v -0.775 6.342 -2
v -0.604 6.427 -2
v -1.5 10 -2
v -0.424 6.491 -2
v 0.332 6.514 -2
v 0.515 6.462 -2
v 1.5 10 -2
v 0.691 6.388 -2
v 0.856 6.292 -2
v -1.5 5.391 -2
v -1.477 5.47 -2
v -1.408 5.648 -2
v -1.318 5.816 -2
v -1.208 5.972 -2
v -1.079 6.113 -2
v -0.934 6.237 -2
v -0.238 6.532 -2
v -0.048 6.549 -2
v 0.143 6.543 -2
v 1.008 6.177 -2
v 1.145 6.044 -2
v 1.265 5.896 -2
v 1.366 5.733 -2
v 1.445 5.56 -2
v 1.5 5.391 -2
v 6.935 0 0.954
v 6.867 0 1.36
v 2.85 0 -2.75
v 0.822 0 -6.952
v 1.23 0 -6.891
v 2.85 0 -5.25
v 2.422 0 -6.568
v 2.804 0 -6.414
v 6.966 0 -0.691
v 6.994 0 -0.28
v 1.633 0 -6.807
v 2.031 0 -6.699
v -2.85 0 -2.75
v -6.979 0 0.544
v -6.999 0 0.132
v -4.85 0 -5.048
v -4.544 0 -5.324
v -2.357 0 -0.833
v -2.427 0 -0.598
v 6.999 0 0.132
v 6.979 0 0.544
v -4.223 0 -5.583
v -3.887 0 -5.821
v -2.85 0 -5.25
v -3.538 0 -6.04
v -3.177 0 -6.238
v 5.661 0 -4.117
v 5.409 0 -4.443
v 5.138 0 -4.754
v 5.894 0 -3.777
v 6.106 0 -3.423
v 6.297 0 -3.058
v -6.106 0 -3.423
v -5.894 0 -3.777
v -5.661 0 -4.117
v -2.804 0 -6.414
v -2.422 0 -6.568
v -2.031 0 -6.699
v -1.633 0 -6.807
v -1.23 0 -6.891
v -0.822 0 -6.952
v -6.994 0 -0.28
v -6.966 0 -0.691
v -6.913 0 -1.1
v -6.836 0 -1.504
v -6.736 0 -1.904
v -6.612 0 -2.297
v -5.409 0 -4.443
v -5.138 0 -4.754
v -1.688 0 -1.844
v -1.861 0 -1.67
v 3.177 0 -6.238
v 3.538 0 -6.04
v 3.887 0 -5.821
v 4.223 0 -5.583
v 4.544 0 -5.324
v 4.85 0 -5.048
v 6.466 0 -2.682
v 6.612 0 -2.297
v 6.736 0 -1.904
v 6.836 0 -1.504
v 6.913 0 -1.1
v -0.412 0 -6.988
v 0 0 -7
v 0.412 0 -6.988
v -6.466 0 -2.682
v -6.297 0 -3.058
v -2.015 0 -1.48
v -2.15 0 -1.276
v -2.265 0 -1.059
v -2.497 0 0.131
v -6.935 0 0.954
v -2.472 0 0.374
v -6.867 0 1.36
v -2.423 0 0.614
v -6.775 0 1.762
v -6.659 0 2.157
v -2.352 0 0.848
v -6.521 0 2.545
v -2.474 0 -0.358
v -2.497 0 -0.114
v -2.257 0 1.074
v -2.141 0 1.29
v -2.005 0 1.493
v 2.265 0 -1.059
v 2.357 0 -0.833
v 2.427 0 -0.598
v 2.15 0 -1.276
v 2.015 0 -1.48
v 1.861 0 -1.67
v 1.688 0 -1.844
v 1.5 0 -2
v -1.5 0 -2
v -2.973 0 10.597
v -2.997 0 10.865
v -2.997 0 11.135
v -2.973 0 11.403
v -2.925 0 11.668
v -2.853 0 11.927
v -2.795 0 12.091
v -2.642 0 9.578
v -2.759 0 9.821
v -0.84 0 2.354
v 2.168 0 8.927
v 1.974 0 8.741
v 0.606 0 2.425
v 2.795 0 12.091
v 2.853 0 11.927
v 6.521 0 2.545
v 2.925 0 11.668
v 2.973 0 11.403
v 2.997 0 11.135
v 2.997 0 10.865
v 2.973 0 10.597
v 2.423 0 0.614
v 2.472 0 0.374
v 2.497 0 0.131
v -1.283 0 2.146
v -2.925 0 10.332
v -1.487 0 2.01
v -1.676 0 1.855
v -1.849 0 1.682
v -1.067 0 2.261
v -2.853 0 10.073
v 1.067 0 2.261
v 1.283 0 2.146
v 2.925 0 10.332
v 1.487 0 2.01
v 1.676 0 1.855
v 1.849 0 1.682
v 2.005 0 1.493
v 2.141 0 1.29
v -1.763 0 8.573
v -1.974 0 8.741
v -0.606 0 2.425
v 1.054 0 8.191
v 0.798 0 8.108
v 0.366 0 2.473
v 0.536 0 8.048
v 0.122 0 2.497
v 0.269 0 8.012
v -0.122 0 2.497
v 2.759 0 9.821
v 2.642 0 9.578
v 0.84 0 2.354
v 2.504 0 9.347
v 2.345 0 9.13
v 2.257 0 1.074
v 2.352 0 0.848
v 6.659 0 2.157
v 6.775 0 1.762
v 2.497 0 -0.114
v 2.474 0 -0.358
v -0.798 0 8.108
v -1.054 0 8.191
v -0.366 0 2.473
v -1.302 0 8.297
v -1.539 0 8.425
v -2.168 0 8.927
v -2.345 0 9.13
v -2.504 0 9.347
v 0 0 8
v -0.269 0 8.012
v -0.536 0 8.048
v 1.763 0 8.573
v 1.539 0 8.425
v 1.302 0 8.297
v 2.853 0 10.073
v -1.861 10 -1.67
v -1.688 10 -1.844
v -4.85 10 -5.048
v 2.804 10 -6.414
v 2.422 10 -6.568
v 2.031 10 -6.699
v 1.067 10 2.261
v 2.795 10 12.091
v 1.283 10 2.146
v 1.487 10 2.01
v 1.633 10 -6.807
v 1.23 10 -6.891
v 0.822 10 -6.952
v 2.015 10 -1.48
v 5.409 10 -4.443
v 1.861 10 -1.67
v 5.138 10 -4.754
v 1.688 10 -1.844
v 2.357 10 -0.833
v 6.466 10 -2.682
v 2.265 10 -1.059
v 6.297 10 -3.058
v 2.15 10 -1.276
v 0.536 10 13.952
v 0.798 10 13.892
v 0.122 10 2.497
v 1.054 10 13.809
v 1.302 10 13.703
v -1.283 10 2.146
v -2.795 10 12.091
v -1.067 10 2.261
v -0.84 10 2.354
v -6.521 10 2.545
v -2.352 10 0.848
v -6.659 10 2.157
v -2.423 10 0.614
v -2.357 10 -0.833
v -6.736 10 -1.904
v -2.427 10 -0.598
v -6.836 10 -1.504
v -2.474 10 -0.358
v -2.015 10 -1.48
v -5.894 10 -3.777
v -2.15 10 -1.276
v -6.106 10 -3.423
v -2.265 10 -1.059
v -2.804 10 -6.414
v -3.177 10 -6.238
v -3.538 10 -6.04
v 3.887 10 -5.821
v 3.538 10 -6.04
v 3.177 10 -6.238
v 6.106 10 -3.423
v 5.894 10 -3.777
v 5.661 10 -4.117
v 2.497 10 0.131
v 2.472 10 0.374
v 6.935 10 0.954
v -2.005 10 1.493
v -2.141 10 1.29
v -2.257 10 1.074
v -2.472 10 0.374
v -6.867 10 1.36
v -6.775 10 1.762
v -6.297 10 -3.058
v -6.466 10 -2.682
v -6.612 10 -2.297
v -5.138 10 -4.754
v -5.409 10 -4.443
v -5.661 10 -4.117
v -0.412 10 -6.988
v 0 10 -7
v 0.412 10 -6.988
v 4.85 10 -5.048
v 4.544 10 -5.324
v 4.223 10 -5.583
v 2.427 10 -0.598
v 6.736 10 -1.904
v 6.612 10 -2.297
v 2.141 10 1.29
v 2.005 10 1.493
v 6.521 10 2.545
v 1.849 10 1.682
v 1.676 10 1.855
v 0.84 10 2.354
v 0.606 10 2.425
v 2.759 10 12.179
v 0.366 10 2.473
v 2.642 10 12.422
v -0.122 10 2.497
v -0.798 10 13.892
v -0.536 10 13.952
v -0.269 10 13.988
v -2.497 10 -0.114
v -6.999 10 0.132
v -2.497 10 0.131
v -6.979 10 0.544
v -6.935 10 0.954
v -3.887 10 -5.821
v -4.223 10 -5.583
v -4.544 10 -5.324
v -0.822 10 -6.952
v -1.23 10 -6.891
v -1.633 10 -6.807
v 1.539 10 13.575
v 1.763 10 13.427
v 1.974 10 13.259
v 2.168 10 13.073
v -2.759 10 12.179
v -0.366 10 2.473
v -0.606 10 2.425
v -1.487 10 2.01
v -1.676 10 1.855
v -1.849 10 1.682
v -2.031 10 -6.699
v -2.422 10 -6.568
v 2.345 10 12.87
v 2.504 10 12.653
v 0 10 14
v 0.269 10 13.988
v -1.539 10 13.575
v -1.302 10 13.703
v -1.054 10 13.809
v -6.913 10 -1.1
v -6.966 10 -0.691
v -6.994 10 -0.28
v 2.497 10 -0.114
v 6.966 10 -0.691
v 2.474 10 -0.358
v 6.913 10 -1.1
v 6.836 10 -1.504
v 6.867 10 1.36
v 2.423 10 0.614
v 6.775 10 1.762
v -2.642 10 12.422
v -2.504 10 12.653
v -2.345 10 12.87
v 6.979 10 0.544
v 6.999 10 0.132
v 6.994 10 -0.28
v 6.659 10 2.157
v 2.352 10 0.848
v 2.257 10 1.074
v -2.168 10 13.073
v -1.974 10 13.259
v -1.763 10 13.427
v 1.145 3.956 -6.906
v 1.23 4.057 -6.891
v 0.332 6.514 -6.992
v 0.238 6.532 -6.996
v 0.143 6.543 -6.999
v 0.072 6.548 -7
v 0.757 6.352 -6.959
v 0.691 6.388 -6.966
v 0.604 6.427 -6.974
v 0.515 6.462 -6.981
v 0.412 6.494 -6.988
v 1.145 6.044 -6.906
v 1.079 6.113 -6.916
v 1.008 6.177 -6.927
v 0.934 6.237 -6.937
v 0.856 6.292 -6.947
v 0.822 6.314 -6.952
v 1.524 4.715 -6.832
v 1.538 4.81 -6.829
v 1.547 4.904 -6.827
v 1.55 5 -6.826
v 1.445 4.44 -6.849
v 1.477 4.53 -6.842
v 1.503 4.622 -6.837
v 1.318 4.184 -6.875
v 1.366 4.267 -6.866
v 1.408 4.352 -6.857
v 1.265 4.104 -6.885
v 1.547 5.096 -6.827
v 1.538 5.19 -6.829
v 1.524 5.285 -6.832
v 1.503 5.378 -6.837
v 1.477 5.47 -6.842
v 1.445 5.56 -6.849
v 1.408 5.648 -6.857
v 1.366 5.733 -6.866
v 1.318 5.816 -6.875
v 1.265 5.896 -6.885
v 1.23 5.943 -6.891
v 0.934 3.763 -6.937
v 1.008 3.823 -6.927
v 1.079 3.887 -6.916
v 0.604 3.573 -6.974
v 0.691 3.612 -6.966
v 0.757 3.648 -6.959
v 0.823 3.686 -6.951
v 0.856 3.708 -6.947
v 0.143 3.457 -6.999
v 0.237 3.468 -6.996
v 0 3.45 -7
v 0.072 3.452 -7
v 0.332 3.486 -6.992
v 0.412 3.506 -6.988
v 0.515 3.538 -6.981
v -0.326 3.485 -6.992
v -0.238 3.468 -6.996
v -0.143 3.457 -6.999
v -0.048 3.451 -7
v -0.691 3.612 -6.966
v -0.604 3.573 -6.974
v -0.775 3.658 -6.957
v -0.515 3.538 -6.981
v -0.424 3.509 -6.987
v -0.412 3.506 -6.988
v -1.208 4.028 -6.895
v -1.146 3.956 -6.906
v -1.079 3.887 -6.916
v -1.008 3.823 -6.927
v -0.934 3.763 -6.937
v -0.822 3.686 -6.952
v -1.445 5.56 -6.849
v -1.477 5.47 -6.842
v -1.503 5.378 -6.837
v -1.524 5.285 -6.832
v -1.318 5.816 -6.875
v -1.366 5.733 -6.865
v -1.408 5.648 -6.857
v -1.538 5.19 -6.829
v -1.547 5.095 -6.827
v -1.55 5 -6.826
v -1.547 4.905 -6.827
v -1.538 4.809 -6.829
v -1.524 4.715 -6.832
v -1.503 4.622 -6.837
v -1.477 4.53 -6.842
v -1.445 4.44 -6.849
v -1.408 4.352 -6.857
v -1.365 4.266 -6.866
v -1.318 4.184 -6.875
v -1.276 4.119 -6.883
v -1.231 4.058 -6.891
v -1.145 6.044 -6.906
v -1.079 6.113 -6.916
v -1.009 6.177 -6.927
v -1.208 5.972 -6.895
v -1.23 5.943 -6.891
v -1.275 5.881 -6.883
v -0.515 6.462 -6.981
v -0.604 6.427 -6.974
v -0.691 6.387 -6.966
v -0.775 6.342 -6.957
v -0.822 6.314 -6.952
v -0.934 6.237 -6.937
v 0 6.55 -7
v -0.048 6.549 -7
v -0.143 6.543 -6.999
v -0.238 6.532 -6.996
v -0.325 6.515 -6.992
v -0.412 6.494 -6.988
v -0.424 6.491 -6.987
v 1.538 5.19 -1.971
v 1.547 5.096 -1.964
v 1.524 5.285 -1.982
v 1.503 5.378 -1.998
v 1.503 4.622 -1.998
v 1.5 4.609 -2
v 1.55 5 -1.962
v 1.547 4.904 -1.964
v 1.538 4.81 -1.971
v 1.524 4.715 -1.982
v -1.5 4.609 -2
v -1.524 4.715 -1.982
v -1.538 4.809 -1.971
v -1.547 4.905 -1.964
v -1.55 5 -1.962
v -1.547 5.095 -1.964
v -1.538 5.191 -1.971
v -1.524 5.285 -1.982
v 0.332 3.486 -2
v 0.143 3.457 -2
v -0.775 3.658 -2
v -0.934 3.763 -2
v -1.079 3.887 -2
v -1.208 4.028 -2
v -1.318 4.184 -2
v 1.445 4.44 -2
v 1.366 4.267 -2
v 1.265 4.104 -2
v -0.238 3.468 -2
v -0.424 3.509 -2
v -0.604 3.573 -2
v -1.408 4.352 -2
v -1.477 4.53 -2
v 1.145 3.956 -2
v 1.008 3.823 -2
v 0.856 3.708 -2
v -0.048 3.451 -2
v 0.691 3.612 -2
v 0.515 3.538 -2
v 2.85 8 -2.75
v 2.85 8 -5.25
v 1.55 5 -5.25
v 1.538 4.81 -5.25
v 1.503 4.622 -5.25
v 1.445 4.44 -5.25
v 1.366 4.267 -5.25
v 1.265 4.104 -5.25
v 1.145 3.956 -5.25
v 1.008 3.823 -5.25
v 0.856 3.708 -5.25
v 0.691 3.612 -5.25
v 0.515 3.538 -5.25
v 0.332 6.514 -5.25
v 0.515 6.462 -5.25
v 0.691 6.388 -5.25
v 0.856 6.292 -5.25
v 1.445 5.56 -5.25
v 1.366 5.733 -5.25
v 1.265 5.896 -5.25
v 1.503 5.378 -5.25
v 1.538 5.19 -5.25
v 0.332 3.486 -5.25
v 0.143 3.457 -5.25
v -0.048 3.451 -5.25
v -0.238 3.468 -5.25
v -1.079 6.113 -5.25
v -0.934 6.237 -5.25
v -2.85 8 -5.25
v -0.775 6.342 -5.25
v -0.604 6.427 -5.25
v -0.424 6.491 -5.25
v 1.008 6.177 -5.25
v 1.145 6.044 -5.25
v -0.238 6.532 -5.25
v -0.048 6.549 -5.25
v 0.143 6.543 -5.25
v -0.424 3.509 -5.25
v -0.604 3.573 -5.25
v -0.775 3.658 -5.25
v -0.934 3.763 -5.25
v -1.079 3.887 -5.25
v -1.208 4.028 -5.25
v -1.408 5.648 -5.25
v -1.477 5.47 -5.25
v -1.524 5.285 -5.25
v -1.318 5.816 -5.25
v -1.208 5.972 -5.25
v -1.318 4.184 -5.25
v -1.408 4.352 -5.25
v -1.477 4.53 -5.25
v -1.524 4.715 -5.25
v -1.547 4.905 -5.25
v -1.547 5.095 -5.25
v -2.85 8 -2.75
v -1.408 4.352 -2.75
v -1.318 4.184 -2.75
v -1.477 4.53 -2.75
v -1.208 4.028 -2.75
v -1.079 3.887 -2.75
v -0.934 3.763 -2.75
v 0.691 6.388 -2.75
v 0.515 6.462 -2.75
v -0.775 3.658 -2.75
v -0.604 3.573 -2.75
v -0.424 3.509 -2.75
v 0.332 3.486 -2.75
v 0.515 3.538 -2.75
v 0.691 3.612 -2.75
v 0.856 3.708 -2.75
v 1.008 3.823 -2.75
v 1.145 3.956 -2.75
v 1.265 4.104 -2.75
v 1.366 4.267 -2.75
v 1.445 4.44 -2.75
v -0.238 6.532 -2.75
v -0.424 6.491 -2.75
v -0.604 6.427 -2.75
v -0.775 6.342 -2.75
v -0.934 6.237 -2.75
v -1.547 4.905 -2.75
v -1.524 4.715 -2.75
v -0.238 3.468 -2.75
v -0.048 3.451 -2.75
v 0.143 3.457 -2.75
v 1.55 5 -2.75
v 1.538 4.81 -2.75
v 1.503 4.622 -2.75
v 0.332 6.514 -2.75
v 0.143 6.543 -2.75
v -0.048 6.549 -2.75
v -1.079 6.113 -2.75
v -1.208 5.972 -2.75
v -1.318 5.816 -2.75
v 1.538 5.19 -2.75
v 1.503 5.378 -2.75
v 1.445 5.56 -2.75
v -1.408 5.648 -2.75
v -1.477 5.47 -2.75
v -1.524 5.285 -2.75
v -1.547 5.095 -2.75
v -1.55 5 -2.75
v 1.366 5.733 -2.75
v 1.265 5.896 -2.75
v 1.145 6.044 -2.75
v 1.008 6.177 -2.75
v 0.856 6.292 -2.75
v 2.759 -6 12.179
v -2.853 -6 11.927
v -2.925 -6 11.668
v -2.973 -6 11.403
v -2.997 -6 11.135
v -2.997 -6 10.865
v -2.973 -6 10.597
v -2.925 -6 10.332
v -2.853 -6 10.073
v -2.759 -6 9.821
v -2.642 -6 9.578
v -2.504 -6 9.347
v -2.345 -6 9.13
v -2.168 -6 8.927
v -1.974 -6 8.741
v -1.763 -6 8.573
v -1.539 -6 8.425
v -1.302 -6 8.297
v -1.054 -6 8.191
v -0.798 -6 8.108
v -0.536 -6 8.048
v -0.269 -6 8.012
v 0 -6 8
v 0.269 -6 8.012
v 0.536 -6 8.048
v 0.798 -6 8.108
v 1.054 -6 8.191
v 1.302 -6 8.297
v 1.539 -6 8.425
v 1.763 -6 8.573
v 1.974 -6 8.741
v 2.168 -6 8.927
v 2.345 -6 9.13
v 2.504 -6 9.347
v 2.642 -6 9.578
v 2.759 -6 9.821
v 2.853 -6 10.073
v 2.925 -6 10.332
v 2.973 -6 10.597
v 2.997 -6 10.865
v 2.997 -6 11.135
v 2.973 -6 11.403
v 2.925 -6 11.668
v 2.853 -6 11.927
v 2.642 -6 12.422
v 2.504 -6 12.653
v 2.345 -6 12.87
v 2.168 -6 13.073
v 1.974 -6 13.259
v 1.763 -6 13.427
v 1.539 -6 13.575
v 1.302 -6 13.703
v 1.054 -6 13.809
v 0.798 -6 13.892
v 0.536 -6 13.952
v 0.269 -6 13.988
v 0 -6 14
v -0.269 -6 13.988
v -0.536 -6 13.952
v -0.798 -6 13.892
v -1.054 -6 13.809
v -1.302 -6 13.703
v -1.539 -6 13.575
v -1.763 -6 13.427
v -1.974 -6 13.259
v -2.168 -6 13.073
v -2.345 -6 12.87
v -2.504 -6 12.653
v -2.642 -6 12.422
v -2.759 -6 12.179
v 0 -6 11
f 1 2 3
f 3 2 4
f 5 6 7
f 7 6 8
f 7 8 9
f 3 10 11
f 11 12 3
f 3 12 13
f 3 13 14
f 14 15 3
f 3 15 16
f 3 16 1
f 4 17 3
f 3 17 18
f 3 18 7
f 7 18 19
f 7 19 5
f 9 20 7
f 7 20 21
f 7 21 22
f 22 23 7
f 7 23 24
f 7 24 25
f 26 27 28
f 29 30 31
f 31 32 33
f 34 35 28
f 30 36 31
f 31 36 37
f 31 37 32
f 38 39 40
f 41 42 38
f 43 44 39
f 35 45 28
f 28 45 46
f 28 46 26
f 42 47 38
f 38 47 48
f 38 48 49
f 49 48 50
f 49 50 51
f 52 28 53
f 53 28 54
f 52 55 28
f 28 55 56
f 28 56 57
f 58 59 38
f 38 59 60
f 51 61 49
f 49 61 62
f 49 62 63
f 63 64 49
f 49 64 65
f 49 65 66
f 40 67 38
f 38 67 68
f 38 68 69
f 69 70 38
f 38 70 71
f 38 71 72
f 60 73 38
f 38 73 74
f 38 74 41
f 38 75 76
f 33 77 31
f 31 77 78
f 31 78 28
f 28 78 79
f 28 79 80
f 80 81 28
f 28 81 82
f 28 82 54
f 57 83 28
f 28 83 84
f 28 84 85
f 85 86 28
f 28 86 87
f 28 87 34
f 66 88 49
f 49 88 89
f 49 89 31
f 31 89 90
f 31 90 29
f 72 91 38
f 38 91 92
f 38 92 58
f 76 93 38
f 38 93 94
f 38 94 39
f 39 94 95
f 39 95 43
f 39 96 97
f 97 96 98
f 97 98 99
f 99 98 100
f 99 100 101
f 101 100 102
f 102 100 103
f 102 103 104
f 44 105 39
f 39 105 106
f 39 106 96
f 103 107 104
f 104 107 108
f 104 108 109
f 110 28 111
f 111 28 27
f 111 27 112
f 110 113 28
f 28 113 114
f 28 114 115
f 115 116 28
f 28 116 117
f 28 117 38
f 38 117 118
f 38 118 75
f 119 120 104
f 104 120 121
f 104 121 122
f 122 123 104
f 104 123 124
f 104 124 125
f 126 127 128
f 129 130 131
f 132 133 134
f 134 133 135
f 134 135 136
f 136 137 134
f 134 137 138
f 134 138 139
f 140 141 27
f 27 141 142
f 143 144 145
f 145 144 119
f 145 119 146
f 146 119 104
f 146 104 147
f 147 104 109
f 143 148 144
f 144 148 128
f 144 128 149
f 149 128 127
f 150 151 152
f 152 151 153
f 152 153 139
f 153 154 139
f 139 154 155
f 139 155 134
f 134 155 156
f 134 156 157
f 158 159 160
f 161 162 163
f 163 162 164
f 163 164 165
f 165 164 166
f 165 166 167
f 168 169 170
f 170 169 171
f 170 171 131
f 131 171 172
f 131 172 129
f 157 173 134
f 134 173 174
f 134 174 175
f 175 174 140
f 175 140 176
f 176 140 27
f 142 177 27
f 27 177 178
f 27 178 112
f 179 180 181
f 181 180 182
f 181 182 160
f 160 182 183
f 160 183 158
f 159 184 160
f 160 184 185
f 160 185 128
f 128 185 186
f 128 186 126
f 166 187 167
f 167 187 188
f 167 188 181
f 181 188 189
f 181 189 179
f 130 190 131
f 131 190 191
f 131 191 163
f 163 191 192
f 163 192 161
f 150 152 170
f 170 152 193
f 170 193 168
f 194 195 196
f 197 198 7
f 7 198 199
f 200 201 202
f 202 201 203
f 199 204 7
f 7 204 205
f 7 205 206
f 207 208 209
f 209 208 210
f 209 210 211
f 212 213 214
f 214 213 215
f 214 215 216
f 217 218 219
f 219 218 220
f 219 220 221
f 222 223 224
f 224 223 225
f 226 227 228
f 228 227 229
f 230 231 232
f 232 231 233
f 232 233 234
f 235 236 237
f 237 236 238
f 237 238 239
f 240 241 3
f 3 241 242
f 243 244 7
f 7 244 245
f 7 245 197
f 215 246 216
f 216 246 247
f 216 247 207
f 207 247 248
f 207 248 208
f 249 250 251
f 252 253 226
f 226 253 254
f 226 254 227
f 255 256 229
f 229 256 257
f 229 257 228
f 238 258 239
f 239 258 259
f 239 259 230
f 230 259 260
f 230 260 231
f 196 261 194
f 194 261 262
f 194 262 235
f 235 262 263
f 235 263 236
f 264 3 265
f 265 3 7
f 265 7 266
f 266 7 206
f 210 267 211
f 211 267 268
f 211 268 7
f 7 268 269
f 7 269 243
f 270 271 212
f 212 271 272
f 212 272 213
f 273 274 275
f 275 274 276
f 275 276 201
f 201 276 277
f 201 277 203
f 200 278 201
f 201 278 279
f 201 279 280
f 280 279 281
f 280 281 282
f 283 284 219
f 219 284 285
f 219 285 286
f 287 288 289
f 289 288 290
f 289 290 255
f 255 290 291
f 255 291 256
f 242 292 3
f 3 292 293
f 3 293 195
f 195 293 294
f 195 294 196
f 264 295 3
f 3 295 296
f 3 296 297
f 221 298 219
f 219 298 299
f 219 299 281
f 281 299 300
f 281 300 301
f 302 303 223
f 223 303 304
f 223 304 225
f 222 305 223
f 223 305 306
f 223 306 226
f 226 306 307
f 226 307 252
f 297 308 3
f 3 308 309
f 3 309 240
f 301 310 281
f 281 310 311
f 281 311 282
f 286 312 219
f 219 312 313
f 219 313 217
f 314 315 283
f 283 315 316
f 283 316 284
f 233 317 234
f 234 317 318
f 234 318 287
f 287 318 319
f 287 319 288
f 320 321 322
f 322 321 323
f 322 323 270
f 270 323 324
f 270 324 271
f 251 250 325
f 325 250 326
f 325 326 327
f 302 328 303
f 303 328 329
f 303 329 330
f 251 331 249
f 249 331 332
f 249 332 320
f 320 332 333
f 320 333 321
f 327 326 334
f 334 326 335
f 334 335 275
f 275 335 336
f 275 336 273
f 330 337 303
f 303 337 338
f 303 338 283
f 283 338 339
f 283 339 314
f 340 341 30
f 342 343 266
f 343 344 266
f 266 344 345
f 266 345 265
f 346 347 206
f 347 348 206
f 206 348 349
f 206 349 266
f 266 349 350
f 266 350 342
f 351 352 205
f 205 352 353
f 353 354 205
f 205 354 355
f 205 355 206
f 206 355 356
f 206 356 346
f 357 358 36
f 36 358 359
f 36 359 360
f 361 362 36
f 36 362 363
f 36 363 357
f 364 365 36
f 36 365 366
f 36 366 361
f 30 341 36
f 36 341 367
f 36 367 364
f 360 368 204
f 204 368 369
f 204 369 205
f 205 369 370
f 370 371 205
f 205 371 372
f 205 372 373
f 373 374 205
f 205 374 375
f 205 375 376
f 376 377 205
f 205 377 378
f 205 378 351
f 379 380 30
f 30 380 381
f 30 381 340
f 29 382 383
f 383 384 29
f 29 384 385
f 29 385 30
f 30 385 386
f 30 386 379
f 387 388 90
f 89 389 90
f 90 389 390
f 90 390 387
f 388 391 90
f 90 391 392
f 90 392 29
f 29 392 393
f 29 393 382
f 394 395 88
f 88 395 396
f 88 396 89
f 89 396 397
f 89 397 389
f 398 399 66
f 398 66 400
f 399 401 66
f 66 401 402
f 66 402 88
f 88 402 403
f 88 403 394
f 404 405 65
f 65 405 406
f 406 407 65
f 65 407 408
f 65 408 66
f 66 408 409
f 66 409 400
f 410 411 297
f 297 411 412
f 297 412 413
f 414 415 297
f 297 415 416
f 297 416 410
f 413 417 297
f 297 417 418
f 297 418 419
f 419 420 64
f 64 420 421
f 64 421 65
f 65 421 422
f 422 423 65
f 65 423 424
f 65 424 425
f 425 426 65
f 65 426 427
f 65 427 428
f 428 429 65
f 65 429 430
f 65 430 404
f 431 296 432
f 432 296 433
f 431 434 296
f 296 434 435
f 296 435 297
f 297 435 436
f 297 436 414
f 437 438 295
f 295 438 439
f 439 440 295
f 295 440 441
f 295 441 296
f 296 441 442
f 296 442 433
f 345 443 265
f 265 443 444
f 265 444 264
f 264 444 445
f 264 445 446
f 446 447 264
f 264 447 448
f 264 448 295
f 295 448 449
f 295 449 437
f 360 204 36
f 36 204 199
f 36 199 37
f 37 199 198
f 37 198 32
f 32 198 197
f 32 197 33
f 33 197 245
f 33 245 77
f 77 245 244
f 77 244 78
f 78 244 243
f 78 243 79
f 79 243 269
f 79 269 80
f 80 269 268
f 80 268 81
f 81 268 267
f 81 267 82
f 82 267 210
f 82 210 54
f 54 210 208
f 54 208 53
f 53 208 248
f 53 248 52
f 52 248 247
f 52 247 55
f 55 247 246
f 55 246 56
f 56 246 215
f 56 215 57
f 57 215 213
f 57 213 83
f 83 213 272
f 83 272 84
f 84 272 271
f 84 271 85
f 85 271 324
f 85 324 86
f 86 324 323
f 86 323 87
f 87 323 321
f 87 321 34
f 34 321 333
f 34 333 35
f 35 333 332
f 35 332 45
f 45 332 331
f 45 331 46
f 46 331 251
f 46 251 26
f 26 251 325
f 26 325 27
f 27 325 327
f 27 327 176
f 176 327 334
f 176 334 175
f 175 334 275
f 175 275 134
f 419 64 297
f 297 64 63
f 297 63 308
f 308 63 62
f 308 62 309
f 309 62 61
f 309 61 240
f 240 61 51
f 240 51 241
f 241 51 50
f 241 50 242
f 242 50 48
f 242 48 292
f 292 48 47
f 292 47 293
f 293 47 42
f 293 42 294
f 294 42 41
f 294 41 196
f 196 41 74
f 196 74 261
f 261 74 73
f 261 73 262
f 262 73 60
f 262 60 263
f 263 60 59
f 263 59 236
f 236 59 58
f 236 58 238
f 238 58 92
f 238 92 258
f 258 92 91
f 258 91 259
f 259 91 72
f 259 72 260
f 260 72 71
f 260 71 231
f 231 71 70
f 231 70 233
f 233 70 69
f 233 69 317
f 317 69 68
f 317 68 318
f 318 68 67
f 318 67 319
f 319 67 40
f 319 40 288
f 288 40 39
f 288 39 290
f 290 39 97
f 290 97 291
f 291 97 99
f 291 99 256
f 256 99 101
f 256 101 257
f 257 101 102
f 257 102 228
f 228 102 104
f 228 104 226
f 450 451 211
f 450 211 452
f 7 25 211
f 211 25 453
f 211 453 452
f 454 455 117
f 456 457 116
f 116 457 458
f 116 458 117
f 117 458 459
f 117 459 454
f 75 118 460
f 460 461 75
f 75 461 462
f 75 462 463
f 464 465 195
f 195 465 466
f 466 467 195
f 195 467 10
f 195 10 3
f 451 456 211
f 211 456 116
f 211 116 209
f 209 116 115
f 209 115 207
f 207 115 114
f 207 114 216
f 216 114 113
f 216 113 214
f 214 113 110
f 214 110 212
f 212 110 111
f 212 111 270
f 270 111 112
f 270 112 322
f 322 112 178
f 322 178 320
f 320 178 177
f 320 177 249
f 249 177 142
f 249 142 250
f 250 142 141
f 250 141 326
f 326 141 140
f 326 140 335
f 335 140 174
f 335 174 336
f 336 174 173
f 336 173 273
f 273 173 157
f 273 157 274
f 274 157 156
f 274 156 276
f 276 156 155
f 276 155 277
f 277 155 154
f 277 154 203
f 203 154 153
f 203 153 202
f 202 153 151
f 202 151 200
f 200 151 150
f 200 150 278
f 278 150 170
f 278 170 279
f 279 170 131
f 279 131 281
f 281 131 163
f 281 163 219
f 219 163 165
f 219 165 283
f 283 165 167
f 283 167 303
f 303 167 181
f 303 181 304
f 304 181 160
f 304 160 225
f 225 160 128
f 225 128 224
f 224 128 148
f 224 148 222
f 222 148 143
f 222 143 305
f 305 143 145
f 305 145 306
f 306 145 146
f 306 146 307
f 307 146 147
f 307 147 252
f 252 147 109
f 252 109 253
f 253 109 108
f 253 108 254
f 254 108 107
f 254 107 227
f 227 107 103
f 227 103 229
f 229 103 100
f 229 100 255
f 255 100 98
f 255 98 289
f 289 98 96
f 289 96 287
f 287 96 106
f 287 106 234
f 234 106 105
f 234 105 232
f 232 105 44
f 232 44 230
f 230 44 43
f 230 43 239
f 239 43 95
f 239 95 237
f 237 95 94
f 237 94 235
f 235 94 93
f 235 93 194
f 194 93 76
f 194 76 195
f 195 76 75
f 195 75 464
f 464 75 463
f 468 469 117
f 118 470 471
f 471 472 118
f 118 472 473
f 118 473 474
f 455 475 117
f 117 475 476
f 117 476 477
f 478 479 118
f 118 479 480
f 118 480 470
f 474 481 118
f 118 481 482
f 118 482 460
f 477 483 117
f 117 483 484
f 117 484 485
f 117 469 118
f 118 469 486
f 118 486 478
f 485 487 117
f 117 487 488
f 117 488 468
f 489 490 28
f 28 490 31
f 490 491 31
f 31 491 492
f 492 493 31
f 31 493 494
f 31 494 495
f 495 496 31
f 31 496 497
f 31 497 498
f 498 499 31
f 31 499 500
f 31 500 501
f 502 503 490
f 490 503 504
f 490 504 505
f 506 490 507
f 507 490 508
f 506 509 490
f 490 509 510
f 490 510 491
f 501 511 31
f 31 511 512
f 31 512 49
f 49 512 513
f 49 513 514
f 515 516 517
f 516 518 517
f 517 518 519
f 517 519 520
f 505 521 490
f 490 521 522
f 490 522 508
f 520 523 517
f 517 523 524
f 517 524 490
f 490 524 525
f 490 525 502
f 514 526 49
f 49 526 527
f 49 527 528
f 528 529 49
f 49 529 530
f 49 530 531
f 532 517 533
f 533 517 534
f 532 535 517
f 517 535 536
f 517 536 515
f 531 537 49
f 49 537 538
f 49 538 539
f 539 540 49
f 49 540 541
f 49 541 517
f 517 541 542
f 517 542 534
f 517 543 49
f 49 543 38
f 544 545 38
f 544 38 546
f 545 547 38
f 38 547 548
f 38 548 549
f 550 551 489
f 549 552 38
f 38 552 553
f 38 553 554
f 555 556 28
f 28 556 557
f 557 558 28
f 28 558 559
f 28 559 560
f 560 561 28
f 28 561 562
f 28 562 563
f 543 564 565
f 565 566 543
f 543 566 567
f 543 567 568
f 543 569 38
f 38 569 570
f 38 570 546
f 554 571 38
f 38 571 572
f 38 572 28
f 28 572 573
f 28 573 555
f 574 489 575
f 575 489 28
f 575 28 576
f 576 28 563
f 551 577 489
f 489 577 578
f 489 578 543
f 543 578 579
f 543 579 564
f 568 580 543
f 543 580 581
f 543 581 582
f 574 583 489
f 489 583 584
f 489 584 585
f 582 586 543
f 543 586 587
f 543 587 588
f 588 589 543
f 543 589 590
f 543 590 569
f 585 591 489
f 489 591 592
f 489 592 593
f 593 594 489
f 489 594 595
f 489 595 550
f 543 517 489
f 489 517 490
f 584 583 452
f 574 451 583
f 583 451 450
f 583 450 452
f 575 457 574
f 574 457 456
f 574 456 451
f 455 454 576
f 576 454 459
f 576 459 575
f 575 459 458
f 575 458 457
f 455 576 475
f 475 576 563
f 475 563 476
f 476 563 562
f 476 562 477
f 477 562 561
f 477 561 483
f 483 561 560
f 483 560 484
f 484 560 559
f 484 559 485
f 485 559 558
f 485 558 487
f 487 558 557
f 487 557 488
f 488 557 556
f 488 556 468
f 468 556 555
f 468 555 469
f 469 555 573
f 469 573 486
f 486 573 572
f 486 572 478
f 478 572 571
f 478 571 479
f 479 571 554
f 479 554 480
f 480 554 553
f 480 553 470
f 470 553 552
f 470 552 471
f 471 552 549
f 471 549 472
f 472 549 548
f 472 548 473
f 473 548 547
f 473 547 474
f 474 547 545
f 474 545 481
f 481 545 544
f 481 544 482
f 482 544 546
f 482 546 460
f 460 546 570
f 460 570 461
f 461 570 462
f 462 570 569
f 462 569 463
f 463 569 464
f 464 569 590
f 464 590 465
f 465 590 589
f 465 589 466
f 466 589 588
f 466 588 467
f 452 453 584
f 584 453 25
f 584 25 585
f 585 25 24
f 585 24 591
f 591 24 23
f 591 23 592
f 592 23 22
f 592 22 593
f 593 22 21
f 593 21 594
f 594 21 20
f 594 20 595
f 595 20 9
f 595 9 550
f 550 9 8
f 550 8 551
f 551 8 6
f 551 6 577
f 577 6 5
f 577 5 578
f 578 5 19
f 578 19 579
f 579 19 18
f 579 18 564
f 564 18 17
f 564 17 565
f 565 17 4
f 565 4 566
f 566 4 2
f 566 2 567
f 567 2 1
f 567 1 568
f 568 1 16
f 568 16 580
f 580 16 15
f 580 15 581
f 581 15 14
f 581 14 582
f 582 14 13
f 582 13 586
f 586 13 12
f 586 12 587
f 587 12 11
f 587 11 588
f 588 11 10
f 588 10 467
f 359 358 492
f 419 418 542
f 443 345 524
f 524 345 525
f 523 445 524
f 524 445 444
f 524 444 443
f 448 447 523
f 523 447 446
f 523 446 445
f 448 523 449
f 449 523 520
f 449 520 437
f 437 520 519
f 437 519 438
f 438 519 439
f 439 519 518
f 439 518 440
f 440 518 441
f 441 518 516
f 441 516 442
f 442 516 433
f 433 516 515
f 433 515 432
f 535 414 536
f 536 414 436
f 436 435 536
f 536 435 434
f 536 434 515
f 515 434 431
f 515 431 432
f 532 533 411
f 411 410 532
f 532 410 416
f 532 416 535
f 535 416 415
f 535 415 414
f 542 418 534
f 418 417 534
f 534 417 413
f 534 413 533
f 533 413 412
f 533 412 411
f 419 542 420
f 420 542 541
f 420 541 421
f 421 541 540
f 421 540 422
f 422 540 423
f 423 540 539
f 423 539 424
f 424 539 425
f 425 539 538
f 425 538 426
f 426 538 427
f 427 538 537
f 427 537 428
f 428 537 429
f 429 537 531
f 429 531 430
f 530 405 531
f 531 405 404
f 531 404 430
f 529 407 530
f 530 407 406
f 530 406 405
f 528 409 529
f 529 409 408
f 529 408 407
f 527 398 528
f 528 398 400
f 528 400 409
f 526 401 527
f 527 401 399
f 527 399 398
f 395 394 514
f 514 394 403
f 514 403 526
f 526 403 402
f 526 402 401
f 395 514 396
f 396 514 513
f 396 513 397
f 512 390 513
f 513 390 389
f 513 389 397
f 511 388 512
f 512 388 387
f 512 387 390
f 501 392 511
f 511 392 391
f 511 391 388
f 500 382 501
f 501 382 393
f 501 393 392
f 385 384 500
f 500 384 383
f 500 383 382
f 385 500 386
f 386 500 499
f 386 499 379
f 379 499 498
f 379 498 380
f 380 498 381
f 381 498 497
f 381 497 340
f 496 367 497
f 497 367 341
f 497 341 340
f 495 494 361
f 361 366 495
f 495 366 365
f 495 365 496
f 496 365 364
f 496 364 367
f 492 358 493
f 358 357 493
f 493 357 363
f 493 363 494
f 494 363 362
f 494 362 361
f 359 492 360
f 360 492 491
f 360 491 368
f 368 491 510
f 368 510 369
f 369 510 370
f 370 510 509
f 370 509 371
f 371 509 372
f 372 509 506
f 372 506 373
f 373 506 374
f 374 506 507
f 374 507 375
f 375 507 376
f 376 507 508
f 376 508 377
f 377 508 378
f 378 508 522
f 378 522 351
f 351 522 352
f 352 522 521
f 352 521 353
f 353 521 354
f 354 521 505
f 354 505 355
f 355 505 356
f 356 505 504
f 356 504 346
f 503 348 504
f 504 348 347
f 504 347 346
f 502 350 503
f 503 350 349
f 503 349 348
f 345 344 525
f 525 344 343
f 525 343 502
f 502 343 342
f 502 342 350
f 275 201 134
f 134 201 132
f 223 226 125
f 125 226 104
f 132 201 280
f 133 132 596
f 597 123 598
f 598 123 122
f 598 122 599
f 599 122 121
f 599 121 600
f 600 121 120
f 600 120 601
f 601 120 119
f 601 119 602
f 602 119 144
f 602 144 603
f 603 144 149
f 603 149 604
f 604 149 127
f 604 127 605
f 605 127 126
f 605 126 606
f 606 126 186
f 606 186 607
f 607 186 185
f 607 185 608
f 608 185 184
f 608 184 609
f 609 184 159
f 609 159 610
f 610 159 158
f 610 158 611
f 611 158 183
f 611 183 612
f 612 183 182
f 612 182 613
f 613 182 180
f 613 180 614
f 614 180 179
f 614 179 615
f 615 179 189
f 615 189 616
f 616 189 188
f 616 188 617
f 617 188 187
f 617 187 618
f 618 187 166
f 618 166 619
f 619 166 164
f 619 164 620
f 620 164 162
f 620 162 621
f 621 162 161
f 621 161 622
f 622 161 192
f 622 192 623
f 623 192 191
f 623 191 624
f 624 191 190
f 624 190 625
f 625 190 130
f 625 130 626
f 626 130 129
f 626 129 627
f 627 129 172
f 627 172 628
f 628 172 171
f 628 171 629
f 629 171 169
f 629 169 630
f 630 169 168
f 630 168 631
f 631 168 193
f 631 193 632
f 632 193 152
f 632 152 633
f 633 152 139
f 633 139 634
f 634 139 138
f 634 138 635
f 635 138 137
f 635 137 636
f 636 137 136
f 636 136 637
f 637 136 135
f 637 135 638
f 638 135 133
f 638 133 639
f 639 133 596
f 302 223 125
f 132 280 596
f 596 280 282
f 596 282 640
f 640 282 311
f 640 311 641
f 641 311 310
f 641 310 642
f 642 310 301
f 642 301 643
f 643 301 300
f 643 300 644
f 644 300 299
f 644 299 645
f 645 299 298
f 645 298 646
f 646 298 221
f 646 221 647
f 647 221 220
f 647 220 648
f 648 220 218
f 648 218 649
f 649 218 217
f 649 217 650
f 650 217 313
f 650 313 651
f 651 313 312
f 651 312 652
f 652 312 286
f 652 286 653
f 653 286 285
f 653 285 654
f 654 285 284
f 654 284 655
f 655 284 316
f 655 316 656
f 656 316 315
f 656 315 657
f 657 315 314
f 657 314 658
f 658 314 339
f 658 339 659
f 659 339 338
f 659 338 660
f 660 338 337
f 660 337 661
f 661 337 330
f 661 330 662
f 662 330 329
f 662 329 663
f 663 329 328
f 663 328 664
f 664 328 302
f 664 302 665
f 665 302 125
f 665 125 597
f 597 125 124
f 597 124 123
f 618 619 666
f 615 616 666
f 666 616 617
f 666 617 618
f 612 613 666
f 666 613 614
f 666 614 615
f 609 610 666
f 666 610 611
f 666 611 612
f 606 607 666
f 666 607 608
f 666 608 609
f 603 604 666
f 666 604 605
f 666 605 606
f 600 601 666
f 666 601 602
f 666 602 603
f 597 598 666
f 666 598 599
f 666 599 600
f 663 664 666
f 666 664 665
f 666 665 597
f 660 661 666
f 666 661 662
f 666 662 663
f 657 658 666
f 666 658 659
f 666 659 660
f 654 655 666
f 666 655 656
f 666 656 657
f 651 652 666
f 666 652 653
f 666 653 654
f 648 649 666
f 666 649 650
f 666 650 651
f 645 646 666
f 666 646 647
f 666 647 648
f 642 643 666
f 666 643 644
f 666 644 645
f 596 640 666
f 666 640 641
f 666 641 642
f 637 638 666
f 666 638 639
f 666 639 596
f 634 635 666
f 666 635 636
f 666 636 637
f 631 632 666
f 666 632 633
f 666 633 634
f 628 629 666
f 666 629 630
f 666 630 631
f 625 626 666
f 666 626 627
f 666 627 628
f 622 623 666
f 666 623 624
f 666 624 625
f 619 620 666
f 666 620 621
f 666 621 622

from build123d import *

# Parameters (mm, degrees)
SKETCH1_R                = 7
BOSS_EXTRUDE1_DEPTH      = 10
SKETCH3_W                = 5.7
SKETCH3_H                = 2.5
CUT_EXTRUDE1_DEPTH       = 8
SKETCH6_R                = 1.55
CUT_EXTRUDE2_DEPTH       = 15.071247279
BOSS_EXTRUDE2_DEPTH      = 6
BOSS_EXTRUDE2_DEPTH_BACK = 10
SKETCH7_R                = 3
BOSS_EXTRUDE3_START      = -10
BOSS_EXTRUDE3_DEPTH      = 10


with BuildPart() as part:
    # Sketch1 → Boss-Extrude1 (new body)
    with BuildSketch(Plane(origin=(0, 0, 0), x_dir=(1, 0, 0), z_dir=(0, 1, 0))):
        with Locations(Location((0, 0, 0), (0, 0, 270))):
            Circle(SKETCH1_R)
        with BuildLine():
            Line((-1.5, 2), (1.5, 2))
            ThreePointArc((1.5, 2), (0, -2.5), (-1.5, 2))
        make_face(mode=Mode.SUBTRACT)
    extrude(amount=BOSS_EXTRUDE1_DEPTH)

    # Sketch3 → Cut-Extrude1 (cut)
    with BuildSketch(Plane(origin=(0, 0, 0), x_dir=(1, 0, 0), z_dir=(0, 1, 0))):
        with Locations((0, 4)):
            Rectangle(SKETCH3_W, SKETCH3_H)
    extrude(amount=CUT_EXTRUDE1_DEPTH, mode=Mode.SUBTRACT)

    # Sketch6 → Cut-Extrude2 (cut, through all)
    with BuildSketch(Plane.XY):
        with Locations(Location((0, 5, 0), (0, 0, 345.407449398))):
            Circle(SKETCH6_R)
    extrude(amount=-CUT_EXTRUDE2_DEPTH, mode=Mode.SUBTRACT)



with BuildPart() as body_2:
    # Sketch7 → Boss-Extrude2 (new, two sides: drawn at the far end of the back side and taken through both)
    with BuildSketch(Plane.XZ.offset(-BOSS_EXTRUDE2_DEPTH_BACK)):
        with Locations(Location((0, 11, 0), (0, 0, 270))):
            Circle(SKETCH7_R)
    extrude(amount=BOSS_EXTRUDE2_DEPTH + BOSS_EXTRUDE2_DEPTH_BACK)


with BuildPart() as part_1:
    add(part.part)

    add(body_2.part)  # Boss-Extrude3 merges body 2
    # Sketch9 → Boss-Extrude3 (add)
    with BuildSketch(Plane(origin=(0, 10, 0), x_dir=(1, 0, 0), z_dir=(0, 1, 0)).offset(BOSS_EXTRUDE3_START)):
        with BuildLine():
            ThreePointArc((6.520786851, -2.545454545), (0, -7), (-6.520786851, -2.545454545))
            Line((-6.520786851, -2.545454545), (-2.794622936, -12.090909091))
            ThreePointArc((-2.794622936, -12.090909091), (-0.555036572, -8.051791323), (3, -11))
            ThreePointArc((3, -11), (2.948208677, -11.555036572), (2.794622936, -12.090909091))
            Line((2.794622936, -12.090909091), (6.520786851, -2.545454545))
        make_face()
    extrude(amount=BOSS_EXTRUDE3_DEPTH)


solid = part_1.part
